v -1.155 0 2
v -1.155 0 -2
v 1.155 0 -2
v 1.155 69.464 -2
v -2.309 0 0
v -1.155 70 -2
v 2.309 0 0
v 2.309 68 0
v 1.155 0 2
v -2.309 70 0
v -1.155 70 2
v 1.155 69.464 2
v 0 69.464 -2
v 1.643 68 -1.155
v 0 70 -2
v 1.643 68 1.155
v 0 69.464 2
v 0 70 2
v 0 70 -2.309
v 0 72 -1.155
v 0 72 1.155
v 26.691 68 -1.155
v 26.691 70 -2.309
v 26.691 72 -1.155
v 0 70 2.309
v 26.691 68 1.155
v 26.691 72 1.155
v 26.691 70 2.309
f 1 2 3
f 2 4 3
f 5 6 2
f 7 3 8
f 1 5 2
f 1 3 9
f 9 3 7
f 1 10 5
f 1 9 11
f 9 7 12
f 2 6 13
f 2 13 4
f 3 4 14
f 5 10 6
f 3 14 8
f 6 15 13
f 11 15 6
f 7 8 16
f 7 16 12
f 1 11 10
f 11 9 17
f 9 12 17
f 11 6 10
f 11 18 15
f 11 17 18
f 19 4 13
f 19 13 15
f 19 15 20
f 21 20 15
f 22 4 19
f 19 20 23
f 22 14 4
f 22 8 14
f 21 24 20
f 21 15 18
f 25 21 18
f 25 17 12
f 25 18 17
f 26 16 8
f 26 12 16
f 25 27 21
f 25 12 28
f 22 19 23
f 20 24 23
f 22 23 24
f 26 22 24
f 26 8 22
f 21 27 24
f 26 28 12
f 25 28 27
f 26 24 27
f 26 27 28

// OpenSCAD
// 4 mm metric hex key
// The holder specifies the hex size. Arm lengths follow the Wiha 350 short series as a representative example. The holder source leaves the key manufacturer unspecified. The elbow is simplified.
// Units: mm
$fn = 64;
union() {
    translate([0, 0, 0]) rotate([-90, 0, 0])
        cylinder(h=70.0, r1=2.3094010767585034, r2=2.3094010767585034, $fn=6);
    translate([0, 70.0, 0]) rotate([0, 90, 0])
        cylinder(h=26.690598923241495, r1=2.3094010767585034, r2=2.3094010767585034, $fn=6);
}
